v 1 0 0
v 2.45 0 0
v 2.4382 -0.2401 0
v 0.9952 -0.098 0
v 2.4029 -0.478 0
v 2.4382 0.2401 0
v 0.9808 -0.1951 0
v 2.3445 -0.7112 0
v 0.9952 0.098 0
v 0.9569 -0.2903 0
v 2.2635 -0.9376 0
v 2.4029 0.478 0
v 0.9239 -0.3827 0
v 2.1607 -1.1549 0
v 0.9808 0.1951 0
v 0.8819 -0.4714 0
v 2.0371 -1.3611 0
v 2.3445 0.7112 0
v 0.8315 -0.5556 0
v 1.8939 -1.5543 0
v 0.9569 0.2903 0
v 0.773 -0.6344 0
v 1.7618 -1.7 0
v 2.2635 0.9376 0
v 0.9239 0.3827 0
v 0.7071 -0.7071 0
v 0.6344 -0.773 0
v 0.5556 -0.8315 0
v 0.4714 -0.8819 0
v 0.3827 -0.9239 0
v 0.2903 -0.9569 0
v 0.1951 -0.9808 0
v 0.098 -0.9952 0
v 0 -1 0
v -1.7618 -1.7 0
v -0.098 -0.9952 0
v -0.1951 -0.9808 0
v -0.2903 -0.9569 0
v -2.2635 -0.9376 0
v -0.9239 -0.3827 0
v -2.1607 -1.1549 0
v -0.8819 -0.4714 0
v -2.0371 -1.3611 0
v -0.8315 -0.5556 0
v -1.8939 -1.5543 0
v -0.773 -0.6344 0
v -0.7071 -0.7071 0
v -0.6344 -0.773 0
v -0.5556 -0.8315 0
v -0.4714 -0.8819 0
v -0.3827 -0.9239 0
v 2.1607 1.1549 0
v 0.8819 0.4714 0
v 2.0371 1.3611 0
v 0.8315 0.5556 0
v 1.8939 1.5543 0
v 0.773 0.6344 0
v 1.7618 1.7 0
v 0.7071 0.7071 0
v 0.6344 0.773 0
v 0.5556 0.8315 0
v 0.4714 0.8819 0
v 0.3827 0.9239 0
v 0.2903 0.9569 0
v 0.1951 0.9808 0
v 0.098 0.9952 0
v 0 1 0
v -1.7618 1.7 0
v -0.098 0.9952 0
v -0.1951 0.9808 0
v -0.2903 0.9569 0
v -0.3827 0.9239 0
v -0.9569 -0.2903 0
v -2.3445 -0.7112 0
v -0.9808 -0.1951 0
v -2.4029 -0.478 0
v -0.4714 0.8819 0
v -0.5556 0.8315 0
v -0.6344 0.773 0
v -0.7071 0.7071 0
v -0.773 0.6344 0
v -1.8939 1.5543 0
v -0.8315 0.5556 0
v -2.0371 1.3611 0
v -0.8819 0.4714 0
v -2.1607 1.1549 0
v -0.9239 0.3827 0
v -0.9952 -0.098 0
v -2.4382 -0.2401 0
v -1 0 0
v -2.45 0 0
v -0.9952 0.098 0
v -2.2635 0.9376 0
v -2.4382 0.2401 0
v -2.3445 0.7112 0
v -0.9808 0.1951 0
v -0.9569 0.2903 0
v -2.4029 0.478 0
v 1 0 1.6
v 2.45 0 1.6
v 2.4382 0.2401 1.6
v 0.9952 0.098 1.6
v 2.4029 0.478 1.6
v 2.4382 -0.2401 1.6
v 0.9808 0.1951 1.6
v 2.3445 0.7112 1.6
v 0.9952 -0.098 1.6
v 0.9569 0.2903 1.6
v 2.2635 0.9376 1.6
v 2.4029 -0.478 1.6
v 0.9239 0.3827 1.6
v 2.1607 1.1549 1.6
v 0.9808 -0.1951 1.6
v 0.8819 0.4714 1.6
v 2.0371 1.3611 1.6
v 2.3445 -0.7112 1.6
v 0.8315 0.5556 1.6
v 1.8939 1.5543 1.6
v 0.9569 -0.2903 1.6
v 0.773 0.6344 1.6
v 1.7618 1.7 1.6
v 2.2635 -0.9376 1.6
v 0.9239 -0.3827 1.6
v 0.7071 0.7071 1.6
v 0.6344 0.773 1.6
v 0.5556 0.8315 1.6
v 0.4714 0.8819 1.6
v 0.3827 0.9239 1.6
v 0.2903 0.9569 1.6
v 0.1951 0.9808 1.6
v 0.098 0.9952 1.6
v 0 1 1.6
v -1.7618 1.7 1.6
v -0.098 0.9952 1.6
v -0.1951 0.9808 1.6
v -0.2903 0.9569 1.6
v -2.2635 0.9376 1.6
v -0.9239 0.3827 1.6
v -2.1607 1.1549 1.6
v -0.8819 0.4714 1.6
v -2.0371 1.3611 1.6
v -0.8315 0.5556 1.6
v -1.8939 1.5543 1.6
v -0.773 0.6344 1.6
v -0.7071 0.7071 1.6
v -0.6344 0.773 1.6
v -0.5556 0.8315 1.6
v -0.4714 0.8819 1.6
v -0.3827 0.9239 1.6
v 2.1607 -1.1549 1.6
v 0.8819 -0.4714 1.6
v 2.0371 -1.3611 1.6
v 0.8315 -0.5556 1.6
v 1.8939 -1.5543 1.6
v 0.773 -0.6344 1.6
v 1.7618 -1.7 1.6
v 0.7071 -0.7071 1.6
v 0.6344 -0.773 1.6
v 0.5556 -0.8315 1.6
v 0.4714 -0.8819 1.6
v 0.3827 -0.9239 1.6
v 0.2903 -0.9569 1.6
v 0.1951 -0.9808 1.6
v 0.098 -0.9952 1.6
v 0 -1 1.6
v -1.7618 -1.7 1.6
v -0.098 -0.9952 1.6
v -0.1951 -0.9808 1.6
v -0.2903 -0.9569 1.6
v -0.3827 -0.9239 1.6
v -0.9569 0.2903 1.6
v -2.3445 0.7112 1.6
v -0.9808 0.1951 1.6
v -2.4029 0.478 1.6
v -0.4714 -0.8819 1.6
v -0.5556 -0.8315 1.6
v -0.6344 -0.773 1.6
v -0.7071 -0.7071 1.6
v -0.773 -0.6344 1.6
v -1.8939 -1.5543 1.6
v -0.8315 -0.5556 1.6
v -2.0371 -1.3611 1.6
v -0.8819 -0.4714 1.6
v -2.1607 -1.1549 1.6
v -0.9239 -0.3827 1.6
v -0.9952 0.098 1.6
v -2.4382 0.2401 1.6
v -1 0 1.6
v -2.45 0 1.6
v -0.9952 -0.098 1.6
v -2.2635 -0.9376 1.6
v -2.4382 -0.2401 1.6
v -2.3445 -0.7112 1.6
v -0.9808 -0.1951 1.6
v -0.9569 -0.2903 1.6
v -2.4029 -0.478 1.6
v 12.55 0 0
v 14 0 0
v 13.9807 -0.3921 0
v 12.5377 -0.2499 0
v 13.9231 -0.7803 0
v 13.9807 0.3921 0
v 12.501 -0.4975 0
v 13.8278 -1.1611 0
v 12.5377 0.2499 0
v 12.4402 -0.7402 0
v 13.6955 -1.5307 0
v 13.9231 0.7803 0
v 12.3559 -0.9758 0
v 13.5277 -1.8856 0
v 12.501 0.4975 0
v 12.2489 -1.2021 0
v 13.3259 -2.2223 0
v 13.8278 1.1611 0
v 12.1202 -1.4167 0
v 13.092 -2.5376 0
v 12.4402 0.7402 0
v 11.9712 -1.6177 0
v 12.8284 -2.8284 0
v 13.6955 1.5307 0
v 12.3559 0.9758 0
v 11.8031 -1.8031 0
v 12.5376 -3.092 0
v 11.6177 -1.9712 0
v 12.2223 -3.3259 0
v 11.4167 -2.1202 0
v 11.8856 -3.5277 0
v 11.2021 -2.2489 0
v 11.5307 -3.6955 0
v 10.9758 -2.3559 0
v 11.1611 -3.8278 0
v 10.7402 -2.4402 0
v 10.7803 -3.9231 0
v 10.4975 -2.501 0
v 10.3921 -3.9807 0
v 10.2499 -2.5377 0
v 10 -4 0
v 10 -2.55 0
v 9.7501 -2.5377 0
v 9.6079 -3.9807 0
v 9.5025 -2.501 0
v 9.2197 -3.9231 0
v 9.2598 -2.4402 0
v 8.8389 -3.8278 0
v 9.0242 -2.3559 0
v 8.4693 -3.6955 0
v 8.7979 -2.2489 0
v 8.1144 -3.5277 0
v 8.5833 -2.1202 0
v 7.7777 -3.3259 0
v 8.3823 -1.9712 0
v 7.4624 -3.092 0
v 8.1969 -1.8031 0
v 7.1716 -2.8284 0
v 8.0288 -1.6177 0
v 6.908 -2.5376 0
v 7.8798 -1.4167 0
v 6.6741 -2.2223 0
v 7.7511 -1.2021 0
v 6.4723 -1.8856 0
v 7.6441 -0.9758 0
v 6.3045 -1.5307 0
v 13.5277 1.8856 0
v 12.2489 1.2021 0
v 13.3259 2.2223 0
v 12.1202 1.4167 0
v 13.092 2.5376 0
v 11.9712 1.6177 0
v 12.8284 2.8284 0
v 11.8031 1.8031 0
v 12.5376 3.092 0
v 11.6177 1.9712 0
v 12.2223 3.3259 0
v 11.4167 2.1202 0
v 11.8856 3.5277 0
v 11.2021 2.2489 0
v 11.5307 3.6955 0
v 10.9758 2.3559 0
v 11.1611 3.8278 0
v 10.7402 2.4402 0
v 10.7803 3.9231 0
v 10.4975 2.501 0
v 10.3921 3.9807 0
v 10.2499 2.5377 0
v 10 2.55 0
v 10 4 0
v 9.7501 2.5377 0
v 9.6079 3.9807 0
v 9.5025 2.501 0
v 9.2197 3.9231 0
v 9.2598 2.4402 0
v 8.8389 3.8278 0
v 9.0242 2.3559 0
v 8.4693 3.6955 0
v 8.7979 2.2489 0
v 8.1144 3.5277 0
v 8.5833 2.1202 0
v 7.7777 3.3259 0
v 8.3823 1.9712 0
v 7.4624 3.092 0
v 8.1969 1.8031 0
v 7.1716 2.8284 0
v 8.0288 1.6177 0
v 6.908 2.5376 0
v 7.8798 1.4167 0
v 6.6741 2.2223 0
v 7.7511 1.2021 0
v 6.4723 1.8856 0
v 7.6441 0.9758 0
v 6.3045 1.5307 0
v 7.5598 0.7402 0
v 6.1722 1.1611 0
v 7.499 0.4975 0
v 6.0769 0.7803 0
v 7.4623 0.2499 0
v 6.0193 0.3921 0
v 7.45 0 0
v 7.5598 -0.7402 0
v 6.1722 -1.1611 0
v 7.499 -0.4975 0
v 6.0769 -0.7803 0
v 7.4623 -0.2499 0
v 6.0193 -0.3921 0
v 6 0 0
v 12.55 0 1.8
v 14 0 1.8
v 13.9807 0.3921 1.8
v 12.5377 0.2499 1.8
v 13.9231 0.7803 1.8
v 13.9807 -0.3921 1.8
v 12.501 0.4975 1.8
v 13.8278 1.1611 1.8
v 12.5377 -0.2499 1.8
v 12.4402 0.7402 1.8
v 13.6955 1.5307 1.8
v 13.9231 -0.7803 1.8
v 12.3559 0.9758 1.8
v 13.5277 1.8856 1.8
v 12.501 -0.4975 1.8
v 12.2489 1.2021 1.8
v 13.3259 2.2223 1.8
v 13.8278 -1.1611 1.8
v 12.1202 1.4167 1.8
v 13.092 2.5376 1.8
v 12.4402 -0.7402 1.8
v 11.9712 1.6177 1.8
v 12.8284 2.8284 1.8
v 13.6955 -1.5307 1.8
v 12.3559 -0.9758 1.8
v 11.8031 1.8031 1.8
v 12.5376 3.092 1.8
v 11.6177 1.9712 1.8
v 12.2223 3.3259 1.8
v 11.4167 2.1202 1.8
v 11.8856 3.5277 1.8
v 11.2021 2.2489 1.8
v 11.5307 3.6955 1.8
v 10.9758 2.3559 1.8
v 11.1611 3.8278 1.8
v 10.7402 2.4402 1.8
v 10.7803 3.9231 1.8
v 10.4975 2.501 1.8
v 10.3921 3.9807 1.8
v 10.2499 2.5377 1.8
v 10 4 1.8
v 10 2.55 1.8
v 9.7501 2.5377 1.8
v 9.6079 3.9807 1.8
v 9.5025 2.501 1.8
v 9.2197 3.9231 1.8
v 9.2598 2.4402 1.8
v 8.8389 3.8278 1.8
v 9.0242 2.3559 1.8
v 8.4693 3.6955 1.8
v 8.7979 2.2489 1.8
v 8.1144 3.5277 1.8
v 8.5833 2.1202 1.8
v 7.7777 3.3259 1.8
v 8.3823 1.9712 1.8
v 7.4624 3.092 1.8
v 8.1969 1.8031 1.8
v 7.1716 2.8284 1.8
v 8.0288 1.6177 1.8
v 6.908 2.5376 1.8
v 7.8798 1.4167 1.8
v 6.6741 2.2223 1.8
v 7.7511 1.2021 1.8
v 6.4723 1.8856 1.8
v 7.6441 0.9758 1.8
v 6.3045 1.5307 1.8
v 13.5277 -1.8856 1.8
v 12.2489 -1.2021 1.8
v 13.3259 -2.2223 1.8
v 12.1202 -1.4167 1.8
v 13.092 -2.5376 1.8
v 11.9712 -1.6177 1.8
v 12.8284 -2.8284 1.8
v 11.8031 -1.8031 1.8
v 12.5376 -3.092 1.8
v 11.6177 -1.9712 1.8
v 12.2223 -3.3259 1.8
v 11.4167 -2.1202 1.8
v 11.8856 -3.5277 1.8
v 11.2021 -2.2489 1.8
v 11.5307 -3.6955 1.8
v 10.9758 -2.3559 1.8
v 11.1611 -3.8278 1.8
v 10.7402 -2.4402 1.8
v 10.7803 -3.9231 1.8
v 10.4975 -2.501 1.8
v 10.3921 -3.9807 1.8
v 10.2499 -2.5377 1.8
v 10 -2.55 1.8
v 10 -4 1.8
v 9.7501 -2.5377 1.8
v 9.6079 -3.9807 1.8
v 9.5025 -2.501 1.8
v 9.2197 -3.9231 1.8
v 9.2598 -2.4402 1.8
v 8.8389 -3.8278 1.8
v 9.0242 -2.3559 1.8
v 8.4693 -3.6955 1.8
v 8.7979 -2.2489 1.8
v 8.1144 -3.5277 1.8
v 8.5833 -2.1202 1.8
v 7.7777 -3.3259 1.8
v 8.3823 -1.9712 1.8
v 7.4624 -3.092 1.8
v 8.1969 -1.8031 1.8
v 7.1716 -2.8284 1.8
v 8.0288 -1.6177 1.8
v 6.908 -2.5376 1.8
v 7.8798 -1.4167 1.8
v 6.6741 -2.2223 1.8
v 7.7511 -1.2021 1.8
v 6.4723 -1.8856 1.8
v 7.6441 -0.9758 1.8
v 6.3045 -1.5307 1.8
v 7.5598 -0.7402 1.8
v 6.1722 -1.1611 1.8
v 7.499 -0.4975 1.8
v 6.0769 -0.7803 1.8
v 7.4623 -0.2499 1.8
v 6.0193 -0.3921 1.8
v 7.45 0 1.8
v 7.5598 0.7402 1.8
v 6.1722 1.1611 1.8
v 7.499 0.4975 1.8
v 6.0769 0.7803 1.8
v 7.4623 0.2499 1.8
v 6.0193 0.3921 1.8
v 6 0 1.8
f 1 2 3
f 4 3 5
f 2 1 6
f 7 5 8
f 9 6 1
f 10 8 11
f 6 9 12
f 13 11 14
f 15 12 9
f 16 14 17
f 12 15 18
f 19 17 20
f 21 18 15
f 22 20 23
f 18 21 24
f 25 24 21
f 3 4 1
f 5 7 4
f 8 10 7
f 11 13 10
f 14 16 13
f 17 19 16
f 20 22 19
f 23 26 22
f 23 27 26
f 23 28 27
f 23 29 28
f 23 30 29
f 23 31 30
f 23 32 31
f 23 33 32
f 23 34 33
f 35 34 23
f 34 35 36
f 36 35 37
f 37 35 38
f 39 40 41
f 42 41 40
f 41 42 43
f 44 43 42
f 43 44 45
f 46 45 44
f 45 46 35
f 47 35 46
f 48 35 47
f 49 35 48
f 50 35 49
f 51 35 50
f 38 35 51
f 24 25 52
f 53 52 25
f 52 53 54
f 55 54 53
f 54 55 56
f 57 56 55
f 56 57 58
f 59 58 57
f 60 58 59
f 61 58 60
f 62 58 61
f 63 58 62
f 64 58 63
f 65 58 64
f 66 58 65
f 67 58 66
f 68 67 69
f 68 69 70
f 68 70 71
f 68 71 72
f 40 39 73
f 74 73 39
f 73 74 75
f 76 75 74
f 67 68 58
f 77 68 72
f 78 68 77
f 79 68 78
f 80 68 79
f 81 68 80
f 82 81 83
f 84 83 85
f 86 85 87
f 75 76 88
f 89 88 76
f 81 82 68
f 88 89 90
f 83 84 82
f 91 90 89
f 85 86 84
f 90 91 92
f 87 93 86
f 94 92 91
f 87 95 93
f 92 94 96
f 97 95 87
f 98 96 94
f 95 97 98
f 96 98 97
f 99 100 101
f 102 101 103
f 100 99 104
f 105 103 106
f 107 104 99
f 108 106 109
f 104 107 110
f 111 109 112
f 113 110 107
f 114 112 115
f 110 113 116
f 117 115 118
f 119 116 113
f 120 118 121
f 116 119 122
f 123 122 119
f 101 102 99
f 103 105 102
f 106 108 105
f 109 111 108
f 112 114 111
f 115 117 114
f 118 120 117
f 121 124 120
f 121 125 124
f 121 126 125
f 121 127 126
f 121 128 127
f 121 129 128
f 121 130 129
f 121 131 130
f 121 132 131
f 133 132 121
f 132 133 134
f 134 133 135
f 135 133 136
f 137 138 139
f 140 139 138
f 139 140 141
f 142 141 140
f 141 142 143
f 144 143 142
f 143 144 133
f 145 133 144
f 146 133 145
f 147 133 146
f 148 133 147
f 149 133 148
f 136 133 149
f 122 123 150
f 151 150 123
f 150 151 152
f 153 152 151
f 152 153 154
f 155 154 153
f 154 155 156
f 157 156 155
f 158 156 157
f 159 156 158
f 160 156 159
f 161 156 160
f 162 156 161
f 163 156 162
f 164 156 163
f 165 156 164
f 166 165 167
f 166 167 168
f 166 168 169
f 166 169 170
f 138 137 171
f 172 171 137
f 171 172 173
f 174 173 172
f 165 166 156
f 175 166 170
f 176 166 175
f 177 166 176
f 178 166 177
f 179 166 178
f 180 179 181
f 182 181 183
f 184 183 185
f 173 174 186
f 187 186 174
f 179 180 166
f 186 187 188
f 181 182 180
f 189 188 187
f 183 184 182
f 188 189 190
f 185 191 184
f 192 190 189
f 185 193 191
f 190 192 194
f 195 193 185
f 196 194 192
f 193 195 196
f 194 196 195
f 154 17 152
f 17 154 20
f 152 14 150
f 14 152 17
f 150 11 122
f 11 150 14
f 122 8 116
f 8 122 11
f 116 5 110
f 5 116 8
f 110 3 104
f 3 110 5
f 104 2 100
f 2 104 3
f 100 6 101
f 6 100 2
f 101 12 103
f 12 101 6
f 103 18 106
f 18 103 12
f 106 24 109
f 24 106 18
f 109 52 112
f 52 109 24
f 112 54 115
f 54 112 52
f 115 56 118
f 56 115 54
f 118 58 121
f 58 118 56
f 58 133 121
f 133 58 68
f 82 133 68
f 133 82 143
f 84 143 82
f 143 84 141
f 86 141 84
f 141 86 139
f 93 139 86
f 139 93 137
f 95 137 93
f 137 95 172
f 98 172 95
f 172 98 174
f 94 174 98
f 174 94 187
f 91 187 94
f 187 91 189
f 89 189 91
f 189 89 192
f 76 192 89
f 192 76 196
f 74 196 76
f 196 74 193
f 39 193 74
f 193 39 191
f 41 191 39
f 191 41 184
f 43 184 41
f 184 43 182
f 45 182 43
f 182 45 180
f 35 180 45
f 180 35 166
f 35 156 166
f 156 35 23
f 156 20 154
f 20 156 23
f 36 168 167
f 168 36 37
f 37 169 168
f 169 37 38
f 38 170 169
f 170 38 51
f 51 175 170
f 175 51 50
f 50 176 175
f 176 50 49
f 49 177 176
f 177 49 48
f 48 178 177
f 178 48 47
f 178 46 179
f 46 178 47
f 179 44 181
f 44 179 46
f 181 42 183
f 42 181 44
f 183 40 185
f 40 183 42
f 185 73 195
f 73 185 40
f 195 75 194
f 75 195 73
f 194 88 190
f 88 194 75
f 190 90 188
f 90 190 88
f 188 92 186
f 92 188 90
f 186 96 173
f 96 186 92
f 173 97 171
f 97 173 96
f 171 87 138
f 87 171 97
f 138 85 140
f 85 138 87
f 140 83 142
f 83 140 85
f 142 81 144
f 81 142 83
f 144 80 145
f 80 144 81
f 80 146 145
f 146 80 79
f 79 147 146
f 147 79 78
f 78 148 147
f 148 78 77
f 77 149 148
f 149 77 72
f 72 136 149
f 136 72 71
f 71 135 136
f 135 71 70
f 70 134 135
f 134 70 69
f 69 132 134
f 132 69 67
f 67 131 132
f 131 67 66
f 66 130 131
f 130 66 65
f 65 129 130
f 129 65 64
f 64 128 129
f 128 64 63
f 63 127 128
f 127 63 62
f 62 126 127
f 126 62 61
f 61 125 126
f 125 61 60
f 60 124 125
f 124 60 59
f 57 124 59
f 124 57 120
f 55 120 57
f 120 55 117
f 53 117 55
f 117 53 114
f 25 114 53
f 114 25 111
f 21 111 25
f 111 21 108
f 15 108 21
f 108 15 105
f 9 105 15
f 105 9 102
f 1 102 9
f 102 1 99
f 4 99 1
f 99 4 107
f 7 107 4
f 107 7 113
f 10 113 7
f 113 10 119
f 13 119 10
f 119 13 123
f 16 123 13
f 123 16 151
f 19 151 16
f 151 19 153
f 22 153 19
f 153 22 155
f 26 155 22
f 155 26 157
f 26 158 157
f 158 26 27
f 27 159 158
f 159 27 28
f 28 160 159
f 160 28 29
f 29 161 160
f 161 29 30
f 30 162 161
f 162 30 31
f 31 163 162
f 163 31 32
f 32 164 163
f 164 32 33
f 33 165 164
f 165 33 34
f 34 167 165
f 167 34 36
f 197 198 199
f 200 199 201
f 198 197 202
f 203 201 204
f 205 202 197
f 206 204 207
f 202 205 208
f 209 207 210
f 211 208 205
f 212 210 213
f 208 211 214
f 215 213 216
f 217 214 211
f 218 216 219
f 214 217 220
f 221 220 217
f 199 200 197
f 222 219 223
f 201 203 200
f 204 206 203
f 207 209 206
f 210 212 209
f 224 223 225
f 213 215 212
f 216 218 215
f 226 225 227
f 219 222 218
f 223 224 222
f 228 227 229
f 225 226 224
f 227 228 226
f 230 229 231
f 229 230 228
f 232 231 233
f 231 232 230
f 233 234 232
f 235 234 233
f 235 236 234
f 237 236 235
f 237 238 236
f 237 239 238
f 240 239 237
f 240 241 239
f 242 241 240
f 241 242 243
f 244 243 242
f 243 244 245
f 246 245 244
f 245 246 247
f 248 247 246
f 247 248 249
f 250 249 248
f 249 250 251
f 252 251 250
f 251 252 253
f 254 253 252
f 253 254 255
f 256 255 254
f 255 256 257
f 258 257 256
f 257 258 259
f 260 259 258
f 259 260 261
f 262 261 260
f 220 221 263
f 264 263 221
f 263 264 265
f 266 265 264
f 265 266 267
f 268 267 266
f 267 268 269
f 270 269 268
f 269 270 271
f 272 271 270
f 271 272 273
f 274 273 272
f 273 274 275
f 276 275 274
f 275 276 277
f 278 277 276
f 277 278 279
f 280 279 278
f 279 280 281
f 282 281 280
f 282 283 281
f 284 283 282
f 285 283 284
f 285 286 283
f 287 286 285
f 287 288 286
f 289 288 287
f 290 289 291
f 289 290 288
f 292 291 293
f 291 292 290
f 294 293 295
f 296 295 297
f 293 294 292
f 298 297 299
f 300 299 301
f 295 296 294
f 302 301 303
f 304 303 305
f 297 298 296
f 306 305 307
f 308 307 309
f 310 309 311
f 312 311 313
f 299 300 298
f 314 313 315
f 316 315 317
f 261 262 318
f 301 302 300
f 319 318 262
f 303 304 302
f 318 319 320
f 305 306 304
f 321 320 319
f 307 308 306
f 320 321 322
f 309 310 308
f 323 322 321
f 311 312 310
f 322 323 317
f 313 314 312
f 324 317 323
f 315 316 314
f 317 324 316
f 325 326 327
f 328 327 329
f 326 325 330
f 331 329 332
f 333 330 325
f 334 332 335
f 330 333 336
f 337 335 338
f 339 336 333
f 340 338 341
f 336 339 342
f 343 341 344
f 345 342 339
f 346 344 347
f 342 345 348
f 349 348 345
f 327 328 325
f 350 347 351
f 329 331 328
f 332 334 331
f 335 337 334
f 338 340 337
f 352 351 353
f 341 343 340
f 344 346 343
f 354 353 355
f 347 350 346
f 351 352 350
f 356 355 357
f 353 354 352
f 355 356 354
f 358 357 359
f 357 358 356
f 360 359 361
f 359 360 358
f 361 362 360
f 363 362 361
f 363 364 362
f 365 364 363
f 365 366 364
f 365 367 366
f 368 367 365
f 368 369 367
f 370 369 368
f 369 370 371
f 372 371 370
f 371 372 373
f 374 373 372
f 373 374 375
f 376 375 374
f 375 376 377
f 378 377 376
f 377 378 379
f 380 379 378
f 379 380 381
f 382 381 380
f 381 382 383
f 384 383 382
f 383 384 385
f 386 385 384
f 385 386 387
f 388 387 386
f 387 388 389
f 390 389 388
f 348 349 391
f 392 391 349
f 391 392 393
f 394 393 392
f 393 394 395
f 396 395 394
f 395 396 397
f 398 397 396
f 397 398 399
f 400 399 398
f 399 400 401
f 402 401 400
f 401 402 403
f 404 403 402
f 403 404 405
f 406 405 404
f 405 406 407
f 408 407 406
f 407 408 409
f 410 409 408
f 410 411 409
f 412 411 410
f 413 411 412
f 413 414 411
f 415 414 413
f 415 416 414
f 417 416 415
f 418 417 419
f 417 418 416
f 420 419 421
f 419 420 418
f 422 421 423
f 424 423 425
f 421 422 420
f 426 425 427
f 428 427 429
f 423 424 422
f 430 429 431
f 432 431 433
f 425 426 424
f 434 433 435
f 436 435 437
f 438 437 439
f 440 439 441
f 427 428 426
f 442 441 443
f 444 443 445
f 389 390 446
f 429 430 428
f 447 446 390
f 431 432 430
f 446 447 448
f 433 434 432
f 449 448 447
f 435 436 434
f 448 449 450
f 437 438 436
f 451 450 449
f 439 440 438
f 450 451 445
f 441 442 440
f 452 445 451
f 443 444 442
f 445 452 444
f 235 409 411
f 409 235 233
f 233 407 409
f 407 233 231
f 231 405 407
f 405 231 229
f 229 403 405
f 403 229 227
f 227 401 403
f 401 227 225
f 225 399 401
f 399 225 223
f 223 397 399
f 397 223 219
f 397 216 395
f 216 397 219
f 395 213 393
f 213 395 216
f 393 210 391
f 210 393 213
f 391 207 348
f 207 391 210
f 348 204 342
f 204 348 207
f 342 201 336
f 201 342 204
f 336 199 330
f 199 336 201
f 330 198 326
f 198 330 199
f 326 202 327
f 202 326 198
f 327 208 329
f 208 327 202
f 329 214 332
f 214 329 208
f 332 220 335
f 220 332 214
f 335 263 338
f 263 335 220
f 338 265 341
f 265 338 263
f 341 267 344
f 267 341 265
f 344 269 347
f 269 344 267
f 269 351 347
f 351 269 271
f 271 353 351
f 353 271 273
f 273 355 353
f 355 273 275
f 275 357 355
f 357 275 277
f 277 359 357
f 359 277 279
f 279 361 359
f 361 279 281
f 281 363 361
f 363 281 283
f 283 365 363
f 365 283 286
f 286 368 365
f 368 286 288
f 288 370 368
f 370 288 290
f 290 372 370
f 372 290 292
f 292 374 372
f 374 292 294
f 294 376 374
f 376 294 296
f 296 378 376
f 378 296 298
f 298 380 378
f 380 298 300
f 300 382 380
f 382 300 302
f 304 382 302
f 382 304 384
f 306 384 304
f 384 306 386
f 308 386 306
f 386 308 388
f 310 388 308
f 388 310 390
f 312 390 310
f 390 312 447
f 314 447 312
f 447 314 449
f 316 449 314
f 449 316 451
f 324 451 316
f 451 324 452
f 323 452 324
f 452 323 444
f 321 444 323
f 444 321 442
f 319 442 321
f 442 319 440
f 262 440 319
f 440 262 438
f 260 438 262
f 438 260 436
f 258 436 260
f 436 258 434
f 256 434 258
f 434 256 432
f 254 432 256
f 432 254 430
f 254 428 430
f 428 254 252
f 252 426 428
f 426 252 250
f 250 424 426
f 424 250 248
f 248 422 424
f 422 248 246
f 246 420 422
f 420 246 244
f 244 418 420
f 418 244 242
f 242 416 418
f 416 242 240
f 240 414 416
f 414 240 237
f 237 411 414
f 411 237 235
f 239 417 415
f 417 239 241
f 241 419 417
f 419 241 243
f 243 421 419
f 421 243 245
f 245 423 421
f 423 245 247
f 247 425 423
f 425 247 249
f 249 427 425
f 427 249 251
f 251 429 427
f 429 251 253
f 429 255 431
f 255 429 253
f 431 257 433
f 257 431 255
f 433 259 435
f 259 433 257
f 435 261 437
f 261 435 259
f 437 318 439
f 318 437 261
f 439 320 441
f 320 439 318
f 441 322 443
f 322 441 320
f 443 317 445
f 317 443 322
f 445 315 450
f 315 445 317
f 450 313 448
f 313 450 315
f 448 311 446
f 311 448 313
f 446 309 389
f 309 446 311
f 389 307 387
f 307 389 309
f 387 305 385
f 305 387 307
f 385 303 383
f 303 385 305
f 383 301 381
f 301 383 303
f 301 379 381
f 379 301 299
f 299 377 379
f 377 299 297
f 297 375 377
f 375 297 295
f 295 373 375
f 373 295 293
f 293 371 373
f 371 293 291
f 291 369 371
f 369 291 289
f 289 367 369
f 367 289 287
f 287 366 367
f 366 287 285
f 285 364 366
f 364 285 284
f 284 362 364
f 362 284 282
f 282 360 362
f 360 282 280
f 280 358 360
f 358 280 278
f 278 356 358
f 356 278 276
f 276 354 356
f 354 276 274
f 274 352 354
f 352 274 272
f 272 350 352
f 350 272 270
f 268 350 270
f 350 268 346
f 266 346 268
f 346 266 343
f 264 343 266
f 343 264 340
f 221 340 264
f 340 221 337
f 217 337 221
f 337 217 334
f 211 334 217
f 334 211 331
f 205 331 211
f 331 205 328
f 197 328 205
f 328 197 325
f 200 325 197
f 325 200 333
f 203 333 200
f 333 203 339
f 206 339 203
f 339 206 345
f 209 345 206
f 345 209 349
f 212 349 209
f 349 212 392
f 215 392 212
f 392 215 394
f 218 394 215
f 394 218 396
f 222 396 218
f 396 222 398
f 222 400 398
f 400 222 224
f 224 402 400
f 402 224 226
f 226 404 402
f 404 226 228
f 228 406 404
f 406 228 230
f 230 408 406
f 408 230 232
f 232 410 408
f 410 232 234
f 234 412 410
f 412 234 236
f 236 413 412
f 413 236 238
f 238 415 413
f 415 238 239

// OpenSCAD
$fn = 64;

r = 4.90;
trim = 3.40;
hole = 2.00;
h = 1.60;

spacer_r = 8.00;
spacer_h_expand = 0.20;

module extension() {
    linear_extrude(h)
        difference() {
            circle(r / 2);
            difference() {
                square([r, r], center = true);
                square([r, trim], center = true);
            }
            circle(hole / 2);
        }
}


module spacer() {
    linear_extrude(h + spacer_h_expand)
        difference() {
            circle(spacer_r / 2);
            circle(r / 2 + 0.10);
        }
}

extension();

translate([spacer_r * 1.25, 0, 0])
    spacer();
